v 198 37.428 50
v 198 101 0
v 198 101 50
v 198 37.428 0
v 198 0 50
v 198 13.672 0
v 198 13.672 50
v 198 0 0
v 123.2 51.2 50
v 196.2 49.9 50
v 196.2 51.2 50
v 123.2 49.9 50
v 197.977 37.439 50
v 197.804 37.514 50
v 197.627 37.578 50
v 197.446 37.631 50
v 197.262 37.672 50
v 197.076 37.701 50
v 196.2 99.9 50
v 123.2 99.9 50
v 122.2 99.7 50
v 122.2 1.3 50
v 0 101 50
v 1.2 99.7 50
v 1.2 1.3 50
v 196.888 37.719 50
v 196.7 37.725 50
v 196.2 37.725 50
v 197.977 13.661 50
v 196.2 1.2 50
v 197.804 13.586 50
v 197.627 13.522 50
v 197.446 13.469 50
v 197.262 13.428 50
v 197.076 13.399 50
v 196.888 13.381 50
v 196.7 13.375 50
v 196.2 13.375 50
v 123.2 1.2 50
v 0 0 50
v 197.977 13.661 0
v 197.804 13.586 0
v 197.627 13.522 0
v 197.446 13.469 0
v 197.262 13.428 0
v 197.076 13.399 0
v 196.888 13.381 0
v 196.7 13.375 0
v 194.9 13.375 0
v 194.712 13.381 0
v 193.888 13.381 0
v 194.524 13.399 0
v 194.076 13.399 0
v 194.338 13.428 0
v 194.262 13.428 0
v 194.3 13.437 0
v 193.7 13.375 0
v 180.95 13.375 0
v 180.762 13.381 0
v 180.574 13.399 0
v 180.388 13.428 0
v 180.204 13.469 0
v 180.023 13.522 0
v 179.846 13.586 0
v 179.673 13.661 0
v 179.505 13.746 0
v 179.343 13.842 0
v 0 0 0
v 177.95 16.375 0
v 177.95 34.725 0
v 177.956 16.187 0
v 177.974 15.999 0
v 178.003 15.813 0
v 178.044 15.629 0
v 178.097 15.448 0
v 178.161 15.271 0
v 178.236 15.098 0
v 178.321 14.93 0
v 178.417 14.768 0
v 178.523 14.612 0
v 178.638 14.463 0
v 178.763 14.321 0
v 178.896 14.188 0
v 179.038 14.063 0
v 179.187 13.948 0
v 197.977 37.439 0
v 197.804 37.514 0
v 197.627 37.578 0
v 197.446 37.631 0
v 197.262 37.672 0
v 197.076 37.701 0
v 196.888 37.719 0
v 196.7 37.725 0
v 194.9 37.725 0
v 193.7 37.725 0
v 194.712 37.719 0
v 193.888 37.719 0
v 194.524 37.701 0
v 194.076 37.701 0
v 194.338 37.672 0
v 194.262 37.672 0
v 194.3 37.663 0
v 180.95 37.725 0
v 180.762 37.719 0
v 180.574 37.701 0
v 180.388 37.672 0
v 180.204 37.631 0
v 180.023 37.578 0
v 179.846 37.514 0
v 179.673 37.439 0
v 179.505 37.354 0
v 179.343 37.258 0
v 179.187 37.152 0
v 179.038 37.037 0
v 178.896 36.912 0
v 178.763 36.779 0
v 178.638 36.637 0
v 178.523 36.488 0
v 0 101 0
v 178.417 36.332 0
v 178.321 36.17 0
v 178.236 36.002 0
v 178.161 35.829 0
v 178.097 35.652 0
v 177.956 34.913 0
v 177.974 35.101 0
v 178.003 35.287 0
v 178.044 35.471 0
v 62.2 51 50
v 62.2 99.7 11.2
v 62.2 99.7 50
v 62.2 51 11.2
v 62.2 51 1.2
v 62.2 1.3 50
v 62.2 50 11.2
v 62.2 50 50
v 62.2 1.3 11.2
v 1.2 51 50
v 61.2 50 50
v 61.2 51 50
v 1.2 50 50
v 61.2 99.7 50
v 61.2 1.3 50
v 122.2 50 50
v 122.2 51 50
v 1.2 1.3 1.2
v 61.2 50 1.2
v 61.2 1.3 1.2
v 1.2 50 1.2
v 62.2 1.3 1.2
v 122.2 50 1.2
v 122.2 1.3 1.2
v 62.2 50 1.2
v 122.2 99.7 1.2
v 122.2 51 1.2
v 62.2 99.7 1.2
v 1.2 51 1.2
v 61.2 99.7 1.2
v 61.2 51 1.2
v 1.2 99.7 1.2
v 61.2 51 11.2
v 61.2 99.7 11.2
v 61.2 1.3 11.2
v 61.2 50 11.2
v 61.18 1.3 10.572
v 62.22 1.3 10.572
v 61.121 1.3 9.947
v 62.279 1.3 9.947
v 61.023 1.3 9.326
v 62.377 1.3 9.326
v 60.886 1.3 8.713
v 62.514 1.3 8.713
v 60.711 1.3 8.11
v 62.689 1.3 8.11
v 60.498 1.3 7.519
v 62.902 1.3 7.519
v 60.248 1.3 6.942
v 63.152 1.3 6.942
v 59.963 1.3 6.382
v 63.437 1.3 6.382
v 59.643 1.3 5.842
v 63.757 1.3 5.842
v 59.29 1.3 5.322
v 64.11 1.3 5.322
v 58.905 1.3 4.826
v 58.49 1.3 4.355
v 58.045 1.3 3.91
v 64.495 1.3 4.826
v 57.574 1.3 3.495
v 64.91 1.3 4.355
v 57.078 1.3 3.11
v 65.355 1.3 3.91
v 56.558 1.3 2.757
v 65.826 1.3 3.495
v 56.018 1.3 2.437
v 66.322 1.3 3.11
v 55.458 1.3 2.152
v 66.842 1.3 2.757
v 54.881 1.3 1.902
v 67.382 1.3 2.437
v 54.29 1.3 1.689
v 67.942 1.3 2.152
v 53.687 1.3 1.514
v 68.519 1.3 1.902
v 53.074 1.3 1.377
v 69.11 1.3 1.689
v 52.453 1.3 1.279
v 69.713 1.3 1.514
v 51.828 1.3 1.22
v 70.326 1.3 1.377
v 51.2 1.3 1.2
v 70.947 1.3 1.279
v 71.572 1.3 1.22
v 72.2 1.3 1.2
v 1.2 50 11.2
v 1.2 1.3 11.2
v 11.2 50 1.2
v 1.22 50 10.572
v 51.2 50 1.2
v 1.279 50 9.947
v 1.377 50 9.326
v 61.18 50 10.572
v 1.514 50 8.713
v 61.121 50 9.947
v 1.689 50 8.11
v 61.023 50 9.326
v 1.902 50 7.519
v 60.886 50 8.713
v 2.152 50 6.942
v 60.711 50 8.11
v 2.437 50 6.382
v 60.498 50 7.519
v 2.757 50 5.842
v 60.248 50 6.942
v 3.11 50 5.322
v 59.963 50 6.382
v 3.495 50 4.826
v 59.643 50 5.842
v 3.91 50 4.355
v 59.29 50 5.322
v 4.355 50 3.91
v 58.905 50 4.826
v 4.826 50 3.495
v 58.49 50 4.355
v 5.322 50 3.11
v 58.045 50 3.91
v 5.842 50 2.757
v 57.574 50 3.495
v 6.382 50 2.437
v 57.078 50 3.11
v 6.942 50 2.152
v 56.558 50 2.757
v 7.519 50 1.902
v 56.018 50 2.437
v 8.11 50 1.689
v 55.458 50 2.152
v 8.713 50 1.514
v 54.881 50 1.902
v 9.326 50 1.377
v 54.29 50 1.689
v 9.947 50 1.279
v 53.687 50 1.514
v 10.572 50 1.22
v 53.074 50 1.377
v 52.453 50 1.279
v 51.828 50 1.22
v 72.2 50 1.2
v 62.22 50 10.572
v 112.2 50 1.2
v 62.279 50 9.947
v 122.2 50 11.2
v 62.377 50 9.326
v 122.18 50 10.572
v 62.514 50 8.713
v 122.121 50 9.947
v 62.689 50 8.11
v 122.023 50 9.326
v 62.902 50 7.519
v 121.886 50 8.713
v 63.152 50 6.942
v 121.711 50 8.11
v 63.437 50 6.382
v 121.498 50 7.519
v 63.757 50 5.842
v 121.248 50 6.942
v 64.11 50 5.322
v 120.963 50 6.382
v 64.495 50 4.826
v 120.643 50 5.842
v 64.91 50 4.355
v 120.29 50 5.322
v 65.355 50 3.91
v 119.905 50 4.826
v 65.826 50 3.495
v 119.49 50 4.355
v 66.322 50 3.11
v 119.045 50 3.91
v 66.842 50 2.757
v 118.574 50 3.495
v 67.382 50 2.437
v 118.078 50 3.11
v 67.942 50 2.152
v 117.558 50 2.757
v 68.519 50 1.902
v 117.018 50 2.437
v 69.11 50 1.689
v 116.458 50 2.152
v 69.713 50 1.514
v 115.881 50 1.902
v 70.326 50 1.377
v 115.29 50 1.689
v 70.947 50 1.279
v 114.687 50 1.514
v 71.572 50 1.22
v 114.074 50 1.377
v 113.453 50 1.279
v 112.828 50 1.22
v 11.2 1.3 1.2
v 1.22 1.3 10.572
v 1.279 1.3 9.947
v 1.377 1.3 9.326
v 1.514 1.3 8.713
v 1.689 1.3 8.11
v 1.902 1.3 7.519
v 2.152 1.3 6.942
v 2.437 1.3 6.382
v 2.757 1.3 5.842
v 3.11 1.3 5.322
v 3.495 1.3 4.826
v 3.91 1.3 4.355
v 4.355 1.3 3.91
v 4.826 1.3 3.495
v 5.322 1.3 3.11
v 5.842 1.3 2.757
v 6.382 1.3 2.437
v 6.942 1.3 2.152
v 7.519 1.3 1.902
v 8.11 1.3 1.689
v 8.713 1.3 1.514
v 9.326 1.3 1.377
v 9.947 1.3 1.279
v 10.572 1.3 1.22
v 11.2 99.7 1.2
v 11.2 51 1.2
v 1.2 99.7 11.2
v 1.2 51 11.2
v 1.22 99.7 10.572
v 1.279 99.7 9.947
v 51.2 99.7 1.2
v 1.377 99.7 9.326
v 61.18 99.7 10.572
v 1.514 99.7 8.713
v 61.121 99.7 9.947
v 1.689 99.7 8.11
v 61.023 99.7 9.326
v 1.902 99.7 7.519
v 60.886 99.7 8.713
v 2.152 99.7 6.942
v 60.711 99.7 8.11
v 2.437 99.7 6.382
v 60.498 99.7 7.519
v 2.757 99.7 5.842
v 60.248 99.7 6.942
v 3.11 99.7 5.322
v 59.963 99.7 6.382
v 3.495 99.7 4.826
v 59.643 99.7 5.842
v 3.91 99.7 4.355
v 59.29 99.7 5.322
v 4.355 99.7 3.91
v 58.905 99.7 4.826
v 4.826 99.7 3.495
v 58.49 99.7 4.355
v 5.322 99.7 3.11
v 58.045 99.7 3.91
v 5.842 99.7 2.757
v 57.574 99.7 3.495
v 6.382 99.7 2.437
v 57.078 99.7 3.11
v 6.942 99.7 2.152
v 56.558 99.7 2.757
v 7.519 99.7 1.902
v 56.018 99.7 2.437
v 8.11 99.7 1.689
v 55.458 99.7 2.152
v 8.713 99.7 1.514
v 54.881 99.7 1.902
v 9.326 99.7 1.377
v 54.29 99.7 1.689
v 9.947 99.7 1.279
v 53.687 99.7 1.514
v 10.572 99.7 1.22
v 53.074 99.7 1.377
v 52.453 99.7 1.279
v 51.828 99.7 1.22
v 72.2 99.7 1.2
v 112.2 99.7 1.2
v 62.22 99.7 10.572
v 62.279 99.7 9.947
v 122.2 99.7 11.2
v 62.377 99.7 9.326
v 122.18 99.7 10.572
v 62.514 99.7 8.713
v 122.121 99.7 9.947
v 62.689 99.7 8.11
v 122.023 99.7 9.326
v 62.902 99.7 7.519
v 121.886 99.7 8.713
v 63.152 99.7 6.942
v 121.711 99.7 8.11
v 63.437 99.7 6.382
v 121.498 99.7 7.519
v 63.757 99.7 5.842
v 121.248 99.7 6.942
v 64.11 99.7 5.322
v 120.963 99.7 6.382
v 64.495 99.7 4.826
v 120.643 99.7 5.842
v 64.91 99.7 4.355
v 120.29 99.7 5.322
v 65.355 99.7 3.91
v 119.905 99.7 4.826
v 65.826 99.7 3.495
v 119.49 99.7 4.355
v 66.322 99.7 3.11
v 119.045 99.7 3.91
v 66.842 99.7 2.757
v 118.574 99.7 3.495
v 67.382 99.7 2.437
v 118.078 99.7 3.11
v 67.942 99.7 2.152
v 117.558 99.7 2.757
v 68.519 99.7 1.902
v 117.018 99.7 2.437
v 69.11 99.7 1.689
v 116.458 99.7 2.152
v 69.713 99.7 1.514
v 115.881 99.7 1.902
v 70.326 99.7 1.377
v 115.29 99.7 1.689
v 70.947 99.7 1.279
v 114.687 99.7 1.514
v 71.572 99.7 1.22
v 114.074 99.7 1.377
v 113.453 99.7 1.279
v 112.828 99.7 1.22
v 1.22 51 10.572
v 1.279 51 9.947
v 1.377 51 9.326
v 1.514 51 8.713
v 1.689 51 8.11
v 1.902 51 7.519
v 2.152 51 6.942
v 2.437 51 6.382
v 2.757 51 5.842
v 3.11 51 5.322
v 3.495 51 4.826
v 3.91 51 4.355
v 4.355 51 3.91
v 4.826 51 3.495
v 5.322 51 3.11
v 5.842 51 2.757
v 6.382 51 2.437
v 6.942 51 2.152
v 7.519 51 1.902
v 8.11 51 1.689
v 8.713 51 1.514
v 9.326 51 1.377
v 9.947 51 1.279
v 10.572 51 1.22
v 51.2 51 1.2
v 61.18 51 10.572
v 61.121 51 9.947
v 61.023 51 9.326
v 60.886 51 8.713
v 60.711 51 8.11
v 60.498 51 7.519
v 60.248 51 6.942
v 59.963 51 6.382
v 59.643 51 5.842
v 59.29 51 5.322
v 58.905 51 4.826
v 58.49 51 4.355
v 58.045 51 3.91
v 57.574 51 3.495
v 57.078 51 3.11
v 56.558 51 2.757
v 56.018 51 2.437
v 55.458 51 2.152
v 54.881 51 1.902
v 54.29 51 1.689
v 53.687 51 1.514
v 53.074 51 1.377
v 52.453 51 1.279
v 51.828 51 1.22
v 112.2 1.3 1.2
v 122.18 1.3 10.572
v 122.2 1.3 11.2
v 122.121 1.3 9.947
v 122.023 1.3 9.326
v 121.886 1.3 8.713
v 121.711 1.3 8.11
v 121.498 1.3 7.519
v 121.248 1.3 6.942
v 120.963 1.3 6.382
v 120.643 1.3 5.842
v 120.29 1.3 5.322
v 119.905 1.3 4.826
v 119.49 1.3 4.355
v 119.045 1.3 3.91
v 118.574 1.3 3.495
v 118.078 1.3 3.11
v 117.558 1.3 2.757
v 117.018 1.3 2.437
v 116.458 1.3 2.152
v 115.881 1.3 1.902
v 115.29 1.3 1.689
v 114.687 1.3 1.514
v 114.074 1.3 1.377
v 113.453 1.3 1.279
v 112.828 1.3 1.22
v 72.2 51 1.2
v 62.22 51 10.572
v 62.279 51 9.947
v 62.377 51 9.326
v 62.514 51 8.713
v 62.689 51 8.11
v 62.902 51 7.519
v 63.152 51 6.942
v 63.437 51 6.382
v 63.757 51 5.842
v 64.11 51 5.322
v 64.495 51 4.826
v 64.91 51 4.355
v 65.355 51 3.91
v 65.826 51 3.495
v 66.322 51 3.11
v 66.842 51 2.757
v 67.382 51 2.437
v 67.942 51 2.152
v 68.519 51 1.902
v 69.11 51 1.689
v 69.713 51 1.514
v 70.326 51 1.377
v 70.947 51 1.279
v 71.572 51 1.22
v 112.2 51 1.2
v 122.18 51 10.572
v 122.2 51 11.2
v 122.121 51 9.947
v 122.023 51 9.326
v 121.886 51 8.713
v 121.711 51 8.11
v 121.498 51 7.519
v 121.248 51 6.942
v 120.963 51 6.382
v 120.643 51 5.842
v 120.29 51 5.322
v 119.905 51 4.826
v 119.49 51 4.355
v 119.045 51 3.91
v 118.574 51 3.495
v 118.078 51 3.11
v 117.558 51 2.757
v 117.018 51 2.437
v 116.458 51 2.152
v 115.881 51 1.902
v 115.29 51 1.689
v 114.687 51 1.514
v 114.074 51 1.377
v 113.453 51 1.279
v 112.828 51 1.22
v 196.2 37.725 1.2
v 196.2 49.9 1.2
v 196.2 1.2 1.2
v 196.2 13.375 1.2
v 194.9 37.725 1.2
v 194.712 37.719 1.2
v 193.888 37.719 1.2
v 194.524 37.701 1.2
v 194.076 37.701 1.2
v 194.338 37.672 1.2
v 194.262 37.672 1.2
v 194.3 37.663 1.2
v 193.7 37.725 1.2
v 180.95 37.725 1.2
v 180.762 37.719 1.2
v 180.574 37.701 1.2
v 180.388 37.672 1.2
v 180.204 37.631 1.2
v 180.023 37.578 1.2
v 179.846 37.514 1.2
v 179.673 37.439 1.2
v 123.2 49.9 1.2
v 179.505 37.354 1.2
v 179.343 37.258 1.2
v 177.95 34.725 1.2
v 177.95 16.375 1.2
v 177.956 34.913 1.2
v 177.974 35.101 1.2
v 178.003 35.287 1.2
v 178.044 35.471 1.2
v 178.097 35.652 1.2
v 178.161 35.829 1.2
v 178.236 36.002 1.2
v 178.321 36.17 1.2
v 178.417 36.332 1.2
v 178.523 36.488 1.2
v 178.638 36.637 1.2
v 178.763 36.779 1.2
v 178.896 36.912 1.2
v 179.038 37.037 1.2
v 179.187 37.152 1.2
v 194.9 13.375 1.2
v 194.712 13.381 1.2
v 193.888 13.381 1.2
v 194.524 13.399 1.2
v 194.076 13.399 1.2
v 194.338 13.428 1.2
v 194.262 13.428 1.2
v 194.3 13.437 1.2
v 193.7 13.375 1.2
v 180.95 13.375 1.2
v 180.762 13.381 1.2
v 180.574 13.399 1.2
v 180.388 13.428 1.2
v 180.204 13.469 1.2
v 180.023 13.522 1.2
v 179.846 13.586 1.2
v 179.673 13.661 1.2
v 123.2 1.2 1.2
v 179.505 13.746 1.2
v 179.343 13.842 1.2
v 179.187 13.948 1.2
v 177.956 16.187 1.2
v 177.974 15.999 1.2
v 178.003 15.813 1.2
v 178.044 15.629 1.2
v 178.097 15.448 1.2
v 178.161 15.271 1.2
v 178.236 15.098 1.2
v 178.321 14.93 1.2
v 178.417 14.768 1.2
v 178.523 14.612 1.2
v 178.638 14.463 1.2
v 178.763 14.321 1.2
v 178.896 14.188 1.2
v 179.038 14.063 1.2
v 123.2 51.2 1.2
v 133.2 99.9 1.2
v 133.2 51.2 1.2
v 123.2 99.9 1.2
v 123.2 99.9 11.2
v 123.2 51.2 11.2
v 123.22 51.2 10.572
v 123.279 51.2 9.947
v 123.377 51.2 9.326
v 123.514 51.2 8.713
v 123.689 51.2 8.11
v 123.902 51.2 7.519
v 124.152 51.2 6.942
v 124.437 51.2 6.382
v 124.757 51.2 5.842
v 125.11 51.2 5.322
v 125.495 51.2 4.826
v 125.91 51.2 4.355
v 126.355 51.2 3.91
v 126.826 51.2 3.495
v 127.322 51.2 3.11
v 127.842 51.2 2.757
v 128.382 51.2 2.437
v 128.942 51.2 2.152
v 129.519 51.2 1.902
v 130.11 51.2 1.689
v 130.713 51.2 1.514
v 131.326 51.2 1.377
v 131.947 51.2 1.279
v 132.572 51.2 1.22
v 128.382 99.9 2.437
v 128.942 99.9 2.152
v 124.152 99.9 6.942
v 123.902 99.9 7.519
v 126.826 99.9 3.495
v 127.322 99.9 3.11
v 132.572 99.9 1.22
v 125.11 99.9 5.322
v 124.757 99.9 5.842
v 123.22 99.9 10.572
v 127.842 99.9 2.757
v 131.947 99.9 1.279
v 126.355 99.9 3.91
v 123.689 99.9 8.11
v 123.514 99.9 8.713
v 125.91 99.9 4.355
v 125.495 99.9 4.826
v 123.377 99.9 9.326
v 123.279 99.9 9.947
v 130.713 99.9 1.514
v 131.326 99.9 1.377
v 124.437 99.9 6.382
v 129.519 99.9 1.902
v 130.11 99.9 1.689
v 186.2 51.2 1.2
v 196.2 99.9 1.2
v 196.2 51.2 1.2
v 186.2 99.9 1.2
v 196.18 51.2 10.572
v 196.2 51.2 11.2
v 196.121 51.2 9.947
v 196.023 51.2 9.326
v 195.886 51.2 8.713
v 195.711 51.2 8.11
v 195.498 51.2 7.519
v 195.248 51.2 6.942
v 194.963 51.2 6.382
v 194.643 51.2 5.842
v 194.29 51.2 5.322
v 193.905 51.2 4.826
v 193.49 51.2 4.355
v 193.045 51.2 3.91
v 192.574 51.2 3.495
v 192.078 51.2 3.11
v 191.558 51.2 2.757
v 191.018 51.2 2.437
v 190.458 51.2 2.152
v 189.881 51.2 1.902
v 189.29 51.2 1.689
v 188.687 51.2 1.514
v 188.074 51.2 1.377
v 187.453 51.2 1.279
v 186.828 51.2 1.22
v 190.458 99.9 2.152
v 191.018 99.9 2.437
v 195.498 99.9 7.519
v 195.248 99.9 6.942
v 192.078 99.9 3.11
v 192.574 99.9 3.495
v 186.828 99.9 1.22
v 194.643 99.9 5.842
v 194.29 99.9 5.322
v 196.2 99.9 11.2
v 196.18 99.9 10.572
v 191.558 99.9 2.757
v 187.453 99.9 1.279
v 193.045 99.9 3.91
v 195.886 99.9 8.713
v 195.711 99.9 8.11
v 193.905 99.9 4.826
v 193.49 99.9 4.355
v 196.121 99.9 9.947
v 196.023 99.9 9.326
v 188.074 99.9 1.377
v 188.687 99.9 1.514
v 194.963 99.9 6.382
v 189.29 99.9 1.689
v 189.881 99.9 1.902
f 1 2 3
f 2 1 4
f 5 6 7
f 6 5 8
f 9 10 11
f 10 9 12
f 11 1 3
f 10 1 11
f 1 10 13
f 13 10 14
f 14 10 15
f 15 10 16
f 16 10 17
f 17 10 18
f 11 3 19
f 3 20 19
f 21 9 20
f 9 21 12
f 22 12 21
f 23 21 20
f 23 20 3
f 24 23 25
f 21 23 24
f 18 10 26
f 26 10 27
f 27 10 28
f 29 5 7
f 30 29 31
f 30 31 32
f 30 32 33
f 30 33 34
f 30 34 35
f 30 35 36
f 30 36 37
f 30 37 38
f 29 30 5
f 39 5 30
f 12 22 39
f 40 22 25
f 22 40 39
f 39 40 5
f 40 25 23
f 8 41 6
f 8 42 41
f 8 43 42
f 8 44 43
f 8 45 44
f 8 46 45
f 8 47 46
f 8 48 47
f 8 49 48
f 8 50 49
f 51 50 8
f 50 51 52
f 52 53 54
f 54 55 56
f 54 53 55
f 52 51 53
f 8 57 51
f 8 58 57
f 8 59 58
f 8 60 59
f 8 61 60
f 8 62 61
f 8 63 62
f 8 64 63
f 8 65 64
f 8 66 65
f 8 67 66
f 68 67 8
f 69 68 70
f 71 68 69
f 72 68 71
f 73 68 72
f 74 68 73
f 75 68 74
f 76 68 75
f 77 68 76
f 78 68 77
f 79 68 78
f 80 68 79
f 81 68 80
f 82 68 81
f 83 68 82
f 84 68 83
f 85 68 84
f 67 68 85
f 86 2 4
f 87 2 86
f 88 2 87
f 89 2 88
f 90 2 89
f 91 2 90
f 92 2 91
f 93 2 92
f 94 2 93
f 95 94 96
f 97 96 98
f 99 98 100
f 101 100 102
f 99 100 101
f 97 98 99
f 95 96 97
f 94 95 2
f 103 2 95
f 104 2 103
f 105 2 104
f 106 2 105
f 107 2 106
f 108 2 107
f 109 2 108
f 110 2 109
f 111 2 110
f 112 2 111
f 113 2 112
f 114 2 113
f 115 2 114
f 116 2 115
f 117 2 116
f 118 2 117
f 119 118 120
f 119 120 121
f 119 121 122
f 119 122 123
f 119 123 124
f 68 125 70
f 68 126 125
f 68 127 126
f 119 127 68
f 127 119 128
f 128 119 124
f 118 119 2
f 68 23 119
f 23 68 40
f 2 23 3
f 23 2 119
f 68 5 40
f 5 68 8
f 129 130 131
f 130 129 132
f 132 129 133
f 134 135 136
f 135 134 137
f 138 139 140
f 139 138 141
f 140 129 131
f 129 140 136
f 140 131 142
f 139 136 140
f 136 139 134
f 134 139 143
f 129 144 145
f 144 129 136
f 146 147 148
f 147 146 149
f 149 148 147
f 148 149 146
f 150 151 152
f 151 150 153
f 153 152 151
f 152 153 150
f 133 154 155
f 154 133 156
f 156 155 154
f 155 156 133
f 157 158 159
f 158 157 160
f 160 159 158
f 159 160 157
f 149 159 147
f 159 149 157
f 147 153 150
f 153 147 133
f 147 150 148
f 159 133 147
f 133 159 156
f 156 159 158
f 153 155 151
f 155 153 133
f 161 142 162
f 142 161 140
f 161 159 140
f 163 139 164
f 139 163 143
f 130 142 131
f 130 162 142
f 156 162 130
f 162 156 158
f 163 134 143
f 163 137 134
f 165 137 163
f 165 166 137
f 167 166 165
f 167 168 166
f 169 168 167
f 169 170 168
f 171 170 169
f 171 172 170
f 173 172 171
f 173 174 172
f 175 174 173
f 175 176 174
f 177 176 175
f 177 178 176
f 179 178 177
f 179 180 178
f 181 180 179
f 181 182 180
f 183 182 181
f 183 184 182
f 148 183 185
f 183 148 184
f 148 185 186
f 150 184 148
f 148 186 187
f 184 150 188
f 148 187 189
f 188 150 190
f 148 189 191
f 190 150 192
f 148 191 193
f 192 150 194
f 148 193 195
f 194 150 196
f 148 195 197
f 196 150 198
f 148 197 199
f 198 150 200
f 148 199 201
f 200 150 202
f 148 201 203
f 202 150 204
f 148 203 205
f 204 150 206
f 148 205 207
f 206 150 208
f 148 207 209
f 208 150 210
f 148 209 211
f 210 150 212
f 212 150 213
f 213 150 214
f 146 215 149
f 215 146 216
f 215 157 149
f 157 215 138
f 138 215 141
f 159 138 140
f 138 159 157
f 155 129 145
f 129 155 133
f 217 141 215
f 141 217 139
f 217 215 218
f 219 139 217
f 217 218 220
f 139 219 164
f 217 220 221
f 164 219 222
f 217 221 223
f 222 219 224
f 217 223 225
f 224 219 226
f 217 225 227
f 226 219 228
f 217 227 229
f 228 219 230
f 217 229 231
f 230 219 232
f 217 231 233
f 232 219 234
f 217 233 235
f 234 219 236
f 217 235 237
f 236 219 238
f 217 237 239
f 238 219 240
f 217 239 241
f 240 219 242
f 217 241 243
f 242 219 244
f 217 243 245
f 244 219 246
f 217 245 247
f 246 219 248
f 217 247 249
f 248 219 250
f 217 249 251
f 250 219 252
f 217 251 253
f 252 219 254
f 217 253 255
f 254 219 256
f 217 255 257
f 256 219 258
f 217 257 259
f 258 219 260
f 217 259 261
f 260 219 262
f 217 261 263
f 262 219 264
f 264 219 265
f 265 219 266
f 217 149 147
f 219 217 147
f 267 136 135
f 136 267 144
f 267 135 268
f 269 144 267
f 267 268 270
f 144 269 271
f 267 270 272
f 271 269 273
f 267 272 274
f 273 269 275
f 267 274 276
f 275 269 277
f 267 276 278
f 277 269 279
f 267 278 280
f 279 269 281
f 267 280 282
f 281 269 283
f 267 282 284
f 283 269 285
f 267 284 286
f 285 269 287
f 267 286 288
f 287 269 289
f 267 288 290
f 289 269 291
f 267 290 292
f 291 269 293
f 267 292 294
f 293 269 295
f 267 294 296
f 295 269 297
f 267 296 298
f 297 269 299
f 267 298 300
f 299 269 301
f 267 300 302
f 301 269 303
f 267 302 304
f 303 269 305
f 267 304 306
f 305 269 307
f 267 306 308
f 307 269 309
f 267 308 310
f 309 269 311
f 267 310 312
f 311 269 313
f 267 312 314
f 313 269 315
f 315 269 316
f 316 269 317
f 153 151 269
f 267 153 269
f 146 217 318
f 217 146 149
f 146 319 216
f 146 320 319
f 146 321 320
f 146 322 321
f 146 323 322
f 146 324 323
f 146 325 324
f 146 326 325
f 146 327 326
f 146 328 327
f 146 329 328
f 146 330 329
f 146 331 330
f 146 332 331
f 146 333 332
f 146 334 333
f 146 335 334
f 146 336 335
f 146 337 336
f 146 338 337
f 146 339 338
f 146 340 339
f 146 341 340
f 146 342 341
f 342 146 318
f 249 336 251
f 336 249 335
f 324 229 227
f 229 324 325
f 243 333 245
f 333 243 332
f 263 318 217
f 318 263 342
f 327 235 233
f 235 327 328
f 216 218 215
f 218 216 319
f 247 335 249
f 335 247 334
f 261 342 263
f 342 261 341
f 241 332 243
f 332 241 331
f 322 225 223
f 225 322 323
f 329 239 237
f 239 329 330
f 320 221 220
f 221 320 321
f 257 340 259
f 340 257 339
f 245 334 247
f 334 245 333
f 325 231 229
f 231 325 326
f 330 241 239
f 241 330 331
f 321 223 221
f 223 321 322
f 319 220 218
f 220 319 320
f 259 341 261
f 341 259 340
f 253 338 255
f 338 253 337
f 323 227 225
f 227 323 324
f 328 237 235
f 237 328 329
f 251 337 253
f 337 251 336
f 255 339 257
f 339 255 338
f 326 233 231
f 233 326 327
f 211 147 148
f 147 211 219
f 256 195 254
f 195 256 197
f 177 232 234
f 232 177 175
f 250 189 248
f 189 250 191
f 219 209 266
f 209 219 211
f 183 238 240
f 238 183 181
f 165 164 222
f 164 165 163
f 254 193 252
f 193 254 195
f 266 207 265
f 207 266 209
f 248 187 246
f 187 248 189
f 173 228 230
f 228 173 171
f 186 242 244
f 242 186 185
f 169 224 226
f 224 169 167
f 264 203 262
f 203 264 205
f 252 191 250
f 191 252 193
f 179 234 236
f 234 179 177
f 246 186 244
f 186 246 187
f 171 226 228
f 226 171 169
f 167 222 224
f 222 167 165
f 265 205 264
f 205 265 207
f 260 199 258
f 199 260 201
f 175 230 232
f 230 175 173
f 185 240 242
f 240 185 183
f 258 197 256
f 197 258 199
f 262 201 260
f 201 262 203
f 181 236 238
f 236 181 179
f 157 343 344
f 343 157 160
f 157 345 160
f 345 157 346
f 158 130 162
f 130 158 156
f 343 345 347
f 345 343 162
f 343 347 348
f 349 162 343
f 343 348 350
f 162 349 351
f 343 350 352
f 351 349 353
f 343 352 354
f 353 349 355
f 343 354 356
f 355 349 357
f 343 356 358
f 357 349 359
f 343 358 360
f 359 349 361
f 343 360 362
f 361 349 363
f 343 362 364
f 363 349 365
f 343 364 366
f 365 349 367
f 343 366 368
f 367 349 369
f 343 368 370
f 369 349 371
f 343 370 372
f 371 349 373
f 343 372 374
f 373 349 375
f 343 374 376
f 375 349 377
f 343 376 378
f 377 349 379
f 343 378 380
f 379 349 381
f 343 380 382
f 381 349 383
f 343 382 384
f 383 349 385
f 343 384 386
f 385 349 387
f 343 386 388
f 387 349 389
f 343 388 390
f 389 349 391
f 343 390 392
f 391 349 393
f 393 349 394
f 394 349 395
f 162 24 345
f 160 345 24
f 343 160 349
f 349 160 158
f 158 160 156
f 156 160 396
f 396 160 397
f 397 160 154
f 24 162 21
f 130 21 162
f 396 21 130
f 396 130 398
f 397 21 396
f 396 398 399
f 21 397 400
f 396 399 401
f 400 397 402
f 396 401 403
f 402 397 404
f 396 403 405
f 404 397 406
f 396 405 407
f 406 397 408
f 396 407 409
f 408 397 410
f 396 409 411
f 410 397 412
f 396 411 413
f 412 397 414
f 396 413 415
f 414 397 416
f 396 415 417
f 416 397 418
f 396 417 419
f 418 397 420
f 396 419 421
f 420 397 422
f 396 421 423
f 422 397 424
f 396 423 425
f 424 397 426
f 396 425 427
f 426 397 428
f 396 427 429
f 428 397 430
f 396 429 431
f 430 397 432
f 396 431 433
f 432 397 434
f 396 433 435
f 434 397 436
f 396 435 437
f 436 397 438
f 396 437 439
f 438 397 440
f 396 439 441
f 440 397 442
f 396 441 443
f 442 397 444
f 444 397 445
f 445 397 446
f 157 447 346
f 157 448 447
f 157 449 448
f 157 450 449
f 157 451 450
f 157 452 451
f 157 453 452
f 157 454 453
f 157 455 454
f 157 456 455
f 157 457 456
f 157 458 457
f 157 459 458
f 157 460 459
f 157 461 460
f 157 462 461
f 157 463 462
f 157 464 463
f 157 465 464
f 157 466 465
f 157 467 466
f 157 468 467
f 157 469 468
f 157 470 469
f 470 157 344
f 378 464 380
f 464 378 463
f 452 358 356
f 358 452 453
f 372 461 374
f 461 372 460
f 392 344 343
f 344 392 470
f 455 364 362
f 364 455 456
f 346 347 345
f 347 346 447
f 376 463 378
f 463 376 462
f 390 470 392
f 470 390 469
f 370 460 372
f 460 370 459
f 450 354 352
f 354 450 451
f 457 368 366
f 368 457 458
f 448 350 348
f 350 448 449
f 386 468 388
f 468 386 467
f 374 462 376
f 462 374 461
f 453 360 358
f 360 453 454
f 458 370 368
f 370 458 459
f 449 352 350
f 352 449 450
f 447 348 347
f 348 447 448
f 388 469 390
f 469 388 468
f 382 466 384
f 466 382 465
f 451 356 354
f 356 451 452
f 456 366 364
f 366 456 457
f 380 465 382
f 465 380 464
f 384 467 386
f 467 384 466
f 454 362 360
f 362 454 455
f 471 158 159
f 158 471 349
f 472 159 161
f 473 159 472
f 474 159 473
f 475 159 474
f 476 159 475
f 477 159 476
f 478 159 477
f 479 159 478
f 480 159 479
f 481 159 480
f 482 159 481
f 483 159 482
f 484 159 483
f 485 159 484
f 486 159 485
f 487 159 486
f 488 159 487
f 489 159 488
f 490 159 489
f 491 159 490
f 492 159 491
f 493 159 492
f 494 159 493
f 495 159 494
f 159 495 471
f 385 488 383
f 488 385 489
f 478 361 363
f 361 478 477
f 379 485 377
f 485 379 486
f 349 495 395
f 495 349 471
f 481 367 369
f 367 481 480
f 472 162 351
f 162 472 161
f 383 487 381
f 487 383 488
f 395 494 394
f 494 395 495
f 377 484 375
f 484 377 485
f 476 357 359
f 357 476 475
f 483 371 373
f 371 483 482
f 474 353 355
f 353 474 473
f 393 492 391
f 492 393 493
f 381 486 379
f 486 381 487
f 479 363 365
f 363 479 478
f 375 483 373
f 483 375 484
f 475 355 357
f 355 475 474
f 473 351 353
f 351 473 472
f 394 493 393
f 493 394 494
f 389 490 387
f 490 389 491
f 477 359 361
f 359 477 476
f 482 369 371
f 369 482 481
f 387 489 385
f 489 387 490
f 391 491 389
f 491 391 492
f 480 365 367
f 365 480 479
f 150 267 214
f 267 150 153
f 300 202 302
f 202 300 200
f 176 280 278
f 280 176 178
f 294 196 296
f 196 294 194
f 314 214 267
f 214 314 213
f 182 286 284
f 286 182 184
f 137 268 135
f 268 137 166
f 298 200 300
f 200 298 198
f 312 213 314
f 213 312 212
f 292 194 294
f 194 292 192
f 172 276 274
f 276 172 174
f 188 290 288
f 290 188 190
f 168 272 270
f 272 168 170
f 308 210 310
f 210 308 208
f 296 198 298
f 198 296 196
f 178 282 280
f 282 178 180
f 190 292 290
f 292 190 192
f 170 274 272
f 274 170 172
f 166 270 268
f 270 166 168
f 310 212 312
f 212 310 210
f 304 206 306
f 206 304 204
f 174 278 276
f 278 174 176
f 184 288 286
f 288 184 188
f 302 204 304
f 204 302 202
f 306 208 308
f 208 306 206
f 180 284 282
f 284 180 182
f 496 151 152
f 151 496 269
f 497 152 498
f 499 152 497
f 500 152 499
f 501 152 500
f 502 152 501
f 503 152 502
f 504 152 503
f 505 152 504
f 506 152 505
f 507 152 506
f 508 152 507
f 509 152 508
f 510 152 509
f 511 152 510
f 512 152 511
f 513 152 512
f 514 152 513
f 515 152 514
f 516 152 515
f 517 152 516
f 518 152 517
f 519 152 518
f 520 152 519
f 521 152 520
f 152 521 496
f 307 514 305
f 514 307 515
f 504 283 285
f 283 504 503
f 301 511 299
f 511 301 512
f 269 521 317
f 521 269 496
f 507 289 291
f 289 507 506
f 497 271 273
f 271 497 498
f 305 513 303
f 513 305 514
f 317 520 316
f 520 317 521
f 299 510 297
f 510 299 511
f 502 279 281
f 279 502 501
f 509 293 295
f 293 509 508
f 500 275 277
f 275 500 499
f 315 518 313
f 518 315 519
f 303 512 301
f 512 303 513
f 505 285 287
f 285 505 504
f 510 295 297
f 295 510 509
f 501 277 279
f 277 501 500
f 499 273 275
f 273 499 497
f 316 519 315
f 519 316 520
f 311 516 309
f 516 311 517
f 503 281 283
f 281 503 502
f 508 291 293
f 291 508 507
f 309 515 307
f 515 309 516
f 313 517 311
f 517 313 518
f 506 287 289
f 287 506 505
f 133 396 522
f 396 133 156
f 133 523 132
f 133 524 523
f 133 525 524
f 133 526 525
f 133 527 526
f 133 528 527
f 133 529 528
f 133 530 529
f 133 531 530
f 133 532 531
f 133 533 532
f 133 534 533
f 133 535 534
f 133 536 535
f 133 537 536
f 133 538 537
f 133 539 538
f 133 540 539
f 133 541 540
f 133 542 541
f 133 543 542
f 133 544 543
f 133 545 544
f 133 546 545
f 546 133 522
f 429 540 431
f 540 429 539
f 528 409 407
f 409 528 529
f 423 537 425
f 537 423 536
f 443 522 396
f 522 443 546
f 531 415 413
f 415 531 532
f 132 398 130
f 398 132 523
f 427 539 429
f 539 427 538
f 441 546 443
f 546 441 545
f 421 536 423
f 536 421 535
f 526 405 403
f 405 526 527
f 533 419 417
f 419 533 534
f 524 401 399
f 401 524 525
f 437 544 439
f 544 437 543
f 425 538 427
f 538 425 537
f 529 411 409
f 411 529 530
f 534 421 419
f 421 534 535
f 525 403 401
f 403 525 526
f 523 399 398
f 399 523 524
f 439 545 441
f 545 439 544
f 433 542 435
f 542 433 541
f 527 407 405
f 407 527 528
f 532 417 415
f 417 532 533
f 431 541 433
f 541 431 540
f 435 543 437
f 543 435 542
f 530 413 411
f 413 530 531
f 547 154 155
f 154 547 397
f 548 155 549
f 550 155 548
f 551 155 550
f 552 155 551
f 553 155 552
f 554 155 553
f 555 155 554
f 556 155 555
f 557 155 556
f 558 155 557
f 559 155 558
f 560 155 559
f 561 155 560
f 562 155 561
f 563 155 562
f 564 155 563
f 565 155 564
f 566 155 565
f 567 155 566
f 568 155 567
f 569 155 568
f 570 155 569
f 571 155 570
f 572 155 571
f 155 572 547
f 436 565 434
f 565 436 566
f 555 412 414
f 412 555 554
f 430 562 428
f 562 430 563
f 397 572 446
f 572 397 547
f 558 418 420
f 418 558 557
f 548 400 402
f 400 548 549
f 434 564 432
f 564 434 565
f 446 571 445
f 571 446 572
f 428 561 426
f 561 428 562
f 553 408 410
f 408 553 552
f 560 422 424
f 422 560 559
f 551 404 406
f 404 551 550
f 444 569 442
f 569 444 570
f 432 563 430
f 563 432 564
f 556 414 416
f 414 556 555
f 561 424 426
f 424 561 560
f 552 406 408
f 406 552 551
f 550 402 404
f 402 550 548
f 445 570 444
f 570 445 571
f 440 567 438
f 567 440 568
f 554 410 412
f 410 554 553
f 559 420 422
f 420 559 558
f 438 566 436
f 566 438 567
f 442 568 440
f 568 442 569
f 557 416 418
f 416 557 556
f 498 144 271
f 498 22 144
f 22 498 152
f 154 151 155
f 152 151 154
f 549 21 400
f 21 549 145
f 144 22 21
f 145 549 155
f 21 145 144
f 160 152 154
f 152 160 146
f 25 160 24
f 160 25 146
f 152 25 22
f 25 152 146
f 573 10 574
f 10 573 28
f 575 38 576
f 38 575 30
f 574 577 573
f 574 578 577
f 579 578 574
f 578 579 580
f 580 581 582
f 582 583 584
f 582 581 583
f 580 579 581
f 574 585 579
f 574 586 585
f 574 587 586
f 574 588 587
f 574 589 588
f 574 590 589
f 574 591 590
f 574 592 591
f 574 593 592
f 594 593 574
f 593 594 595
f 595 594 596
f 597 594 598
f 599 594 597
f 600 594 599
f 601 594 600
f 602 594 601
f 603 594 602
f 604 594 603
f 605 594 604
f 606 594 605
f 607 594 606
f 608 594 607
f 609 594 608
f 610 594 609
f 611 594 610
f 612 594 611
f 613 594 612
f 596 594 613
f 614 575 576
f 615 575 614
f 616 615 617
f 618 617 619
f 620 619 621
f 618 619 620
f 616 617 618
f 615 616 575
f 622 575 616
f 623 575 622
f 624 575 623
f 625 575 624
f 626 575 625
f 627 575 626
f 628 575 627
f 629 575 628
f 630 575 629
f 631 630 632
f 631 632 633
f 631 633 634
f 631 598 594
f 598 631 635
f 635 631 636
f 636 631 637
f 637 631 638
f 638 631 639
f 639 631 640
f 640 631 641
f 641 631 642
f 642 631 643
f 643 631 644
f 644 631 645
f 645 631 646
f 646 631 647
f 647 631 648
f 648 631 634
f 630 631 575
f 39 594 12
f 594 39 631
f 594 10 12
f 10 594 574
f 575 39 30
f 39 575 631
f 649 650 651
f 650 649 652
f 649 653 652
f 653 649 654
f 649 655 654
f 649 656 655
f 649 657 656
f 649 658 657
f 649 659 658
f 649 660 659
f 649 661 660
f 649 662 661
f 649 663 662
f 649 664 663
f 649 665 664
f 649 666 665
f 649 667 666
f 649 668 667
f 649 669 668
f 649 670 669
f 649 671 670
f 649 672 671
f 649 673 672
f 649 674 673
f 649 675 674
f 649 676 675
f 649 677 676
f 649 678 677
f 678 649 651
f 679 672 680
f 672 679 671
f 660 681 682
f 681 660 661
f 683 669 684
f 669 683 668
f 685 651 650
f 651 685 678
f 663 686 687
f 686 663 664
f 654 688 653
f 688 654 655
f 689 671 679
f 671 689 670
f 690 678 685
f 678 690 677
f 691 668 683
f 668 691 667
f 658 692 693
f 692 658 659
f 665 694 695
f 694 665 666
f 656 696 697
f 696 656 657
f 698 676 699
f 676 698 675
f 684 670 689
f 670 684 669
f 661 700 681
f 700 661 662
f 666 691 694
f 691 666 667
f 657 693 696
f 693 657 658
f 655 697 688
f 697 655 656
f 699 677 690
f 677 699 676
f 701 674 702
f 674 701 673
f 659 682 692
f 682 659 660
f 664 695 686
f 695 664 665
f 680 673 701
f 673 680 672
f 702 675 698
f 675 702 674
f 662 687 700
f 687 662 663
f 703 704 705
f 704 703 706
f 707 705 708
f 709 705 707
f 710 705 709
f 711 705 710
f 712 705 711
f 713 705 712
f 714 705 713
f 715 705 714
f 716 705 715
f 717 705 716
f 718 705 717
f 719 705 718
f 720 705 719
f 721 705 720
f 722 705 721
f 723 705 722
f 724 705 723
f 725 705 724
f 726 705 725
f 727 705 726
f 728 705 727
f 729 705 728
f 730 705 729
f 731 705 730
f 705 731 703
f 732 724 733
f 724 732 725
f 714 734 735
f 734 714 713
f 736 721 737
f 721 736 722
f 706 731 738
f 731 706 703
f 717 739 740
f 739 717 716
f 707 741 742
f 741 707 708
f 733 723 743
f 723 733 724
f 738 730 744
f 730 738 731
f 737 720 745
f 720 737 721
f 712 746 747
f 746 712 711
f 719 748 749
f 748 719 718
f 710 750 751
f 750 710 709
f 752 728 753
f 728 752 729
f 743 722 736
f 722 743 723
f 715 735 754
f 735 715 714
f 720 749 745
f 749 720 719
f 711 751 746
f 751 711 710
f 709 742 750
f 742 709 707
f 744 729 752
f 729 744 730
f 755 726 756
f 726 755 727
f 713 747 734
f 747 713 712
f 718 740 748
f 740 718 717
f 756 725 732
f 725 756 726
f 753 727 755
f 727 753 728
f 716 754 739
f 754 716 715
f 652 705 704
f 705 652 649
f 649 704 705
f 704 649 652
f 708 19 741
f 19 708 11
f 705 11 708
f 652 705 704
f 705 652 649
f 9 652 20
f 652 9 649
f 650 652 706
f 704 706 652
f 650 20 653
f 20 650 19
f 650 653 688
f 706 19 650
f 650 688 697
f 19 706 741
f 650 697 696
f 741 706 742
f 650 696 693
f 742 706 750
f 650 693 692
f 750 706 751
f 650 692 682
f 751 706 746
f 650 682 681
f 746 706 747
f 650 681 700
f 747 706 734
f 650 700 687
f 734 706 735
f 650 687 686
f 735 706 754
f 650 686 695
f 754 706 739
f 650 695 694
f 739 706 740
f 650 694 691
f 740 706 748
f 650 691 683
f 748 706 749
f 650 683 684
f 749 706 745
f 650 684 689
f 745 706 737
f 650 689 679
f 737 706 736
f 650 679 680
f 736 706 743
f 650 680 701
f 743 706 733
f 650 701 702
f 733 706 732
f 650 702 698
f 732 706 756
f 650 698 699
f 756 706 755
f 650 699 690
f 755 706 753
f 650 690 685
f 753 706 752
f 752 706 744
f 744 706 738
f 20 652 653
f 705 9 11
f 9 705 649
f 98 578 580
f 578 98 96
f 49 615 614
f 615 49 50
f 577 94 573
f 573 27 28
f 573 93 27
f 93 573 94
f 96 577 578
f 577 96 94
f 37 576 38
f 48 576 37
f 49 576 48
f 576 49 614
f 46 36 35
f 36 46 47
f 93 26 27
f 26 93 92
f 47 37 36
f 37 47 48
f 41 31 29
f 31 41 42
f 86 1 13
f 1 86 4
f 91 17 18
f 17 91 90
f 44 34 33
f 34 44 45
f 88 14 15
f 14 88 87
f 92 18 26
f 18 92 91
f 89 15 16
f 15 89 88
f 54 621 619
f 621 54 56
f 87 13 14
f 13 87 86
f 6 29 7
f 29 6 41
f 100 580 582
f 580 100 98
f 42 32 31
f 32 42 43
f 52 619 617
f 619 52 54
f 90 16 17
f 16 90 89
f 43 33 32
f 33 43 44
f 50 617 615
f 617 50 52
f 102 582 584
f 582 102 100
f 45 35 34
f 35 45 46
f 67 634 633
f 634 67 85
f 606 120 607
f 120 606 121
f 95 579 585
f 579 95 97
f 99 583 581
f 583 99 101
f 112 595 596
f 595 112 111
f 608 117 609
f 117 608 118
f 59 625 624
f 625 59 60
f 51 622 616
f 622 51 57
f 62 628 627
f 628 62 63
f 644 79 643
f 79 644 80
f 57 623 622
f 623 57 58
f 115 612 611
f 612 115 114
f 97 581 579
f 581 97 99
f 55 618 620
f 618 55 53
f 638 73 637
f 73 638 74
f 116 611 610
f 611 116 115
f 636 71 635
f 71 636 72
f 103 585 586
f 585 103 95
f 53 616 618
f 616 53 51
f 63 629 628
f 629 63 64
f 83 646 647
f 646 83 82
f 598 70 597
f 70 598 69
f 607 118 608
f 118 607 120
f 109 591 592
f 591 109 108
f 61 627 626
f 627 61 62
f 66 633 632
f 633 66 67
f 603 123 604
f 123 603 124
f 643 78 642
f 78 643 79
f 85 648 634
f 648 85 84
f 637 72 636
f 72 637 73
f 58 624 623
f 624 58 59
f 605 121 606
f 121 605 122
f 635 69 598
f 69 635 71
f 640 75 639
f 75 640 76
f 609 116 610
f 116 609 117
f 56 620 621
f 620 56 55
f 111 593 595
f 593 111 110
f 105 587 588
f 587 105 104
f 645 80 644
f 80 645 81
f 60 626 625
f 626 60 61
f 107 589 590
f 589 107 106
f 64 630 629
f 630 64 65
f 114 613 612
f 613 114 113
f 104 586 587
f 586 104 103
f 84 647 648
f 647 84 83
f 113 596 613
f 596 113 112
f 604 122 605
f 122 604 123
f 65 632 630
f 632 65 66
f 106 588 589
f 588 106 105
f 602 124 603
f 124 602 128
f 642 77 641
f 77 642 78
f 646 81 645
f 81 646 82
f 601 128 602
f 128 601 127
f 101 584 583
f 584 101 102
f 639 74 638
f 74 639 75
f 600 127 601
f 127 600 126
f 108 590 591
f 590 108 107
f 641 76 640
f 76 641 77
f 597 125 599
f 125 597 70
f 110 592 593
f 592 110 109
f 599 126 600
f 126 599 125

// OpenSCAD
include <boardgame_insert_toolkit_lib.2.scad>;

// determines whether lids are output.
g_b_print_lid = true;

// determines whether boxes are output.
g_b_print_box = true;

// Focus on one box
g_isolated_print_box = "";

// Used to visualize how all of the boxes fit together.
g_b_visualization = false;

// this is the outer wall thickness.
//Default = 1.5mm
g_wall_thickness = 1.2;

// The tolerance value is extra space put between planes of the lid and box that fit together.
// Increase the tolerance to loosen the fit and decrease it to tighten it.
//
// Note that the tolerance is applied exclusively to the lid.
// So if the lid is too tight or too loose, change this value ( up for looser fit, down for tighter fit ) and
// you only need to reprint the lid.
//
// The exception is the stackable box, where the bottom of the box is the lid of the box below,
// in which case the tolerance also affects that box bottom.
//
g_tolerance = 0.15;

// This adjusts the position of the lid detents downward.
// The larger the value, the bigger the gap between the lid and the box.
g_tolerance_detents_pos = 0.1;

aw_box_x = 198.0; // 284 / 2
aw_box_y = 101.0; //
aw_box_z = 50.0;

aw_compartment_size_x = (aw_box_x - 4 * g_wall_thickness) / 3;
aw_compartment_size_y = (aw_box_y - 3 * g_wall_thickness) / 2;

data =
  [
    [
      "Gugong Base Components Box",
      [
        [ BOX_SIZE_XYZ, [aw_box_x, aw_box_y, aw_box_z] ],
        [ BOX_NO_LID_B, t],
        [
          BOX_COMPONENT,
          [
            [ CMP_SHAPE, FILLET ],
            [ CMP_NUM_COMPARTMENTS_XY, [2, 2] ],
            [
              CMP_COMPARTMENT_SIZE_XYZ,
              [
                60,
                aw_compartment_size_y,
                aw_box_z - 1 * g_wall_thickness
              ]
            ],
            [ POSITION_XY, [ 0, CENTER ] ],
          ]
        ],
        [
          BOX_COMPONENT,
          [
            //[ CMP_SHAPE, FILLET ],
            [ CMP_NUM_COMPARTMENTS_XY, [1, 1] ],
            [
              CMP_COMPARTMENT_SIZE_XYZ,
              [
                73,
                aw_compartment_size_y,
                aw_box_z - 1 * g_wall_thickness
              ]
            ],
            [ POSITION_XY, [ 122, 0 ] ],
            [ CMP_CUTOUT_SIDES_4B, [ f, f, f, t ] ]
          ]
        ],
        [
          BOX_COMPONENT,
          [
            [ CMP_SHAPE, FILLET ],
            [ CMP_NUM_COMPARTMENTS_XY, [1, 1] ],
            [
              CMP_COMPARTMENT_SIZE_XYZ,
              [
                73,
                aw_compartment_size_y,
                aw_box_z - 1 * g_wall_thickness
              ]
            ],
            [ POSITION_XY, [ 122, 50 ] ],
          ]
        ],
      ]
    ]
  ];


MakeAll();
